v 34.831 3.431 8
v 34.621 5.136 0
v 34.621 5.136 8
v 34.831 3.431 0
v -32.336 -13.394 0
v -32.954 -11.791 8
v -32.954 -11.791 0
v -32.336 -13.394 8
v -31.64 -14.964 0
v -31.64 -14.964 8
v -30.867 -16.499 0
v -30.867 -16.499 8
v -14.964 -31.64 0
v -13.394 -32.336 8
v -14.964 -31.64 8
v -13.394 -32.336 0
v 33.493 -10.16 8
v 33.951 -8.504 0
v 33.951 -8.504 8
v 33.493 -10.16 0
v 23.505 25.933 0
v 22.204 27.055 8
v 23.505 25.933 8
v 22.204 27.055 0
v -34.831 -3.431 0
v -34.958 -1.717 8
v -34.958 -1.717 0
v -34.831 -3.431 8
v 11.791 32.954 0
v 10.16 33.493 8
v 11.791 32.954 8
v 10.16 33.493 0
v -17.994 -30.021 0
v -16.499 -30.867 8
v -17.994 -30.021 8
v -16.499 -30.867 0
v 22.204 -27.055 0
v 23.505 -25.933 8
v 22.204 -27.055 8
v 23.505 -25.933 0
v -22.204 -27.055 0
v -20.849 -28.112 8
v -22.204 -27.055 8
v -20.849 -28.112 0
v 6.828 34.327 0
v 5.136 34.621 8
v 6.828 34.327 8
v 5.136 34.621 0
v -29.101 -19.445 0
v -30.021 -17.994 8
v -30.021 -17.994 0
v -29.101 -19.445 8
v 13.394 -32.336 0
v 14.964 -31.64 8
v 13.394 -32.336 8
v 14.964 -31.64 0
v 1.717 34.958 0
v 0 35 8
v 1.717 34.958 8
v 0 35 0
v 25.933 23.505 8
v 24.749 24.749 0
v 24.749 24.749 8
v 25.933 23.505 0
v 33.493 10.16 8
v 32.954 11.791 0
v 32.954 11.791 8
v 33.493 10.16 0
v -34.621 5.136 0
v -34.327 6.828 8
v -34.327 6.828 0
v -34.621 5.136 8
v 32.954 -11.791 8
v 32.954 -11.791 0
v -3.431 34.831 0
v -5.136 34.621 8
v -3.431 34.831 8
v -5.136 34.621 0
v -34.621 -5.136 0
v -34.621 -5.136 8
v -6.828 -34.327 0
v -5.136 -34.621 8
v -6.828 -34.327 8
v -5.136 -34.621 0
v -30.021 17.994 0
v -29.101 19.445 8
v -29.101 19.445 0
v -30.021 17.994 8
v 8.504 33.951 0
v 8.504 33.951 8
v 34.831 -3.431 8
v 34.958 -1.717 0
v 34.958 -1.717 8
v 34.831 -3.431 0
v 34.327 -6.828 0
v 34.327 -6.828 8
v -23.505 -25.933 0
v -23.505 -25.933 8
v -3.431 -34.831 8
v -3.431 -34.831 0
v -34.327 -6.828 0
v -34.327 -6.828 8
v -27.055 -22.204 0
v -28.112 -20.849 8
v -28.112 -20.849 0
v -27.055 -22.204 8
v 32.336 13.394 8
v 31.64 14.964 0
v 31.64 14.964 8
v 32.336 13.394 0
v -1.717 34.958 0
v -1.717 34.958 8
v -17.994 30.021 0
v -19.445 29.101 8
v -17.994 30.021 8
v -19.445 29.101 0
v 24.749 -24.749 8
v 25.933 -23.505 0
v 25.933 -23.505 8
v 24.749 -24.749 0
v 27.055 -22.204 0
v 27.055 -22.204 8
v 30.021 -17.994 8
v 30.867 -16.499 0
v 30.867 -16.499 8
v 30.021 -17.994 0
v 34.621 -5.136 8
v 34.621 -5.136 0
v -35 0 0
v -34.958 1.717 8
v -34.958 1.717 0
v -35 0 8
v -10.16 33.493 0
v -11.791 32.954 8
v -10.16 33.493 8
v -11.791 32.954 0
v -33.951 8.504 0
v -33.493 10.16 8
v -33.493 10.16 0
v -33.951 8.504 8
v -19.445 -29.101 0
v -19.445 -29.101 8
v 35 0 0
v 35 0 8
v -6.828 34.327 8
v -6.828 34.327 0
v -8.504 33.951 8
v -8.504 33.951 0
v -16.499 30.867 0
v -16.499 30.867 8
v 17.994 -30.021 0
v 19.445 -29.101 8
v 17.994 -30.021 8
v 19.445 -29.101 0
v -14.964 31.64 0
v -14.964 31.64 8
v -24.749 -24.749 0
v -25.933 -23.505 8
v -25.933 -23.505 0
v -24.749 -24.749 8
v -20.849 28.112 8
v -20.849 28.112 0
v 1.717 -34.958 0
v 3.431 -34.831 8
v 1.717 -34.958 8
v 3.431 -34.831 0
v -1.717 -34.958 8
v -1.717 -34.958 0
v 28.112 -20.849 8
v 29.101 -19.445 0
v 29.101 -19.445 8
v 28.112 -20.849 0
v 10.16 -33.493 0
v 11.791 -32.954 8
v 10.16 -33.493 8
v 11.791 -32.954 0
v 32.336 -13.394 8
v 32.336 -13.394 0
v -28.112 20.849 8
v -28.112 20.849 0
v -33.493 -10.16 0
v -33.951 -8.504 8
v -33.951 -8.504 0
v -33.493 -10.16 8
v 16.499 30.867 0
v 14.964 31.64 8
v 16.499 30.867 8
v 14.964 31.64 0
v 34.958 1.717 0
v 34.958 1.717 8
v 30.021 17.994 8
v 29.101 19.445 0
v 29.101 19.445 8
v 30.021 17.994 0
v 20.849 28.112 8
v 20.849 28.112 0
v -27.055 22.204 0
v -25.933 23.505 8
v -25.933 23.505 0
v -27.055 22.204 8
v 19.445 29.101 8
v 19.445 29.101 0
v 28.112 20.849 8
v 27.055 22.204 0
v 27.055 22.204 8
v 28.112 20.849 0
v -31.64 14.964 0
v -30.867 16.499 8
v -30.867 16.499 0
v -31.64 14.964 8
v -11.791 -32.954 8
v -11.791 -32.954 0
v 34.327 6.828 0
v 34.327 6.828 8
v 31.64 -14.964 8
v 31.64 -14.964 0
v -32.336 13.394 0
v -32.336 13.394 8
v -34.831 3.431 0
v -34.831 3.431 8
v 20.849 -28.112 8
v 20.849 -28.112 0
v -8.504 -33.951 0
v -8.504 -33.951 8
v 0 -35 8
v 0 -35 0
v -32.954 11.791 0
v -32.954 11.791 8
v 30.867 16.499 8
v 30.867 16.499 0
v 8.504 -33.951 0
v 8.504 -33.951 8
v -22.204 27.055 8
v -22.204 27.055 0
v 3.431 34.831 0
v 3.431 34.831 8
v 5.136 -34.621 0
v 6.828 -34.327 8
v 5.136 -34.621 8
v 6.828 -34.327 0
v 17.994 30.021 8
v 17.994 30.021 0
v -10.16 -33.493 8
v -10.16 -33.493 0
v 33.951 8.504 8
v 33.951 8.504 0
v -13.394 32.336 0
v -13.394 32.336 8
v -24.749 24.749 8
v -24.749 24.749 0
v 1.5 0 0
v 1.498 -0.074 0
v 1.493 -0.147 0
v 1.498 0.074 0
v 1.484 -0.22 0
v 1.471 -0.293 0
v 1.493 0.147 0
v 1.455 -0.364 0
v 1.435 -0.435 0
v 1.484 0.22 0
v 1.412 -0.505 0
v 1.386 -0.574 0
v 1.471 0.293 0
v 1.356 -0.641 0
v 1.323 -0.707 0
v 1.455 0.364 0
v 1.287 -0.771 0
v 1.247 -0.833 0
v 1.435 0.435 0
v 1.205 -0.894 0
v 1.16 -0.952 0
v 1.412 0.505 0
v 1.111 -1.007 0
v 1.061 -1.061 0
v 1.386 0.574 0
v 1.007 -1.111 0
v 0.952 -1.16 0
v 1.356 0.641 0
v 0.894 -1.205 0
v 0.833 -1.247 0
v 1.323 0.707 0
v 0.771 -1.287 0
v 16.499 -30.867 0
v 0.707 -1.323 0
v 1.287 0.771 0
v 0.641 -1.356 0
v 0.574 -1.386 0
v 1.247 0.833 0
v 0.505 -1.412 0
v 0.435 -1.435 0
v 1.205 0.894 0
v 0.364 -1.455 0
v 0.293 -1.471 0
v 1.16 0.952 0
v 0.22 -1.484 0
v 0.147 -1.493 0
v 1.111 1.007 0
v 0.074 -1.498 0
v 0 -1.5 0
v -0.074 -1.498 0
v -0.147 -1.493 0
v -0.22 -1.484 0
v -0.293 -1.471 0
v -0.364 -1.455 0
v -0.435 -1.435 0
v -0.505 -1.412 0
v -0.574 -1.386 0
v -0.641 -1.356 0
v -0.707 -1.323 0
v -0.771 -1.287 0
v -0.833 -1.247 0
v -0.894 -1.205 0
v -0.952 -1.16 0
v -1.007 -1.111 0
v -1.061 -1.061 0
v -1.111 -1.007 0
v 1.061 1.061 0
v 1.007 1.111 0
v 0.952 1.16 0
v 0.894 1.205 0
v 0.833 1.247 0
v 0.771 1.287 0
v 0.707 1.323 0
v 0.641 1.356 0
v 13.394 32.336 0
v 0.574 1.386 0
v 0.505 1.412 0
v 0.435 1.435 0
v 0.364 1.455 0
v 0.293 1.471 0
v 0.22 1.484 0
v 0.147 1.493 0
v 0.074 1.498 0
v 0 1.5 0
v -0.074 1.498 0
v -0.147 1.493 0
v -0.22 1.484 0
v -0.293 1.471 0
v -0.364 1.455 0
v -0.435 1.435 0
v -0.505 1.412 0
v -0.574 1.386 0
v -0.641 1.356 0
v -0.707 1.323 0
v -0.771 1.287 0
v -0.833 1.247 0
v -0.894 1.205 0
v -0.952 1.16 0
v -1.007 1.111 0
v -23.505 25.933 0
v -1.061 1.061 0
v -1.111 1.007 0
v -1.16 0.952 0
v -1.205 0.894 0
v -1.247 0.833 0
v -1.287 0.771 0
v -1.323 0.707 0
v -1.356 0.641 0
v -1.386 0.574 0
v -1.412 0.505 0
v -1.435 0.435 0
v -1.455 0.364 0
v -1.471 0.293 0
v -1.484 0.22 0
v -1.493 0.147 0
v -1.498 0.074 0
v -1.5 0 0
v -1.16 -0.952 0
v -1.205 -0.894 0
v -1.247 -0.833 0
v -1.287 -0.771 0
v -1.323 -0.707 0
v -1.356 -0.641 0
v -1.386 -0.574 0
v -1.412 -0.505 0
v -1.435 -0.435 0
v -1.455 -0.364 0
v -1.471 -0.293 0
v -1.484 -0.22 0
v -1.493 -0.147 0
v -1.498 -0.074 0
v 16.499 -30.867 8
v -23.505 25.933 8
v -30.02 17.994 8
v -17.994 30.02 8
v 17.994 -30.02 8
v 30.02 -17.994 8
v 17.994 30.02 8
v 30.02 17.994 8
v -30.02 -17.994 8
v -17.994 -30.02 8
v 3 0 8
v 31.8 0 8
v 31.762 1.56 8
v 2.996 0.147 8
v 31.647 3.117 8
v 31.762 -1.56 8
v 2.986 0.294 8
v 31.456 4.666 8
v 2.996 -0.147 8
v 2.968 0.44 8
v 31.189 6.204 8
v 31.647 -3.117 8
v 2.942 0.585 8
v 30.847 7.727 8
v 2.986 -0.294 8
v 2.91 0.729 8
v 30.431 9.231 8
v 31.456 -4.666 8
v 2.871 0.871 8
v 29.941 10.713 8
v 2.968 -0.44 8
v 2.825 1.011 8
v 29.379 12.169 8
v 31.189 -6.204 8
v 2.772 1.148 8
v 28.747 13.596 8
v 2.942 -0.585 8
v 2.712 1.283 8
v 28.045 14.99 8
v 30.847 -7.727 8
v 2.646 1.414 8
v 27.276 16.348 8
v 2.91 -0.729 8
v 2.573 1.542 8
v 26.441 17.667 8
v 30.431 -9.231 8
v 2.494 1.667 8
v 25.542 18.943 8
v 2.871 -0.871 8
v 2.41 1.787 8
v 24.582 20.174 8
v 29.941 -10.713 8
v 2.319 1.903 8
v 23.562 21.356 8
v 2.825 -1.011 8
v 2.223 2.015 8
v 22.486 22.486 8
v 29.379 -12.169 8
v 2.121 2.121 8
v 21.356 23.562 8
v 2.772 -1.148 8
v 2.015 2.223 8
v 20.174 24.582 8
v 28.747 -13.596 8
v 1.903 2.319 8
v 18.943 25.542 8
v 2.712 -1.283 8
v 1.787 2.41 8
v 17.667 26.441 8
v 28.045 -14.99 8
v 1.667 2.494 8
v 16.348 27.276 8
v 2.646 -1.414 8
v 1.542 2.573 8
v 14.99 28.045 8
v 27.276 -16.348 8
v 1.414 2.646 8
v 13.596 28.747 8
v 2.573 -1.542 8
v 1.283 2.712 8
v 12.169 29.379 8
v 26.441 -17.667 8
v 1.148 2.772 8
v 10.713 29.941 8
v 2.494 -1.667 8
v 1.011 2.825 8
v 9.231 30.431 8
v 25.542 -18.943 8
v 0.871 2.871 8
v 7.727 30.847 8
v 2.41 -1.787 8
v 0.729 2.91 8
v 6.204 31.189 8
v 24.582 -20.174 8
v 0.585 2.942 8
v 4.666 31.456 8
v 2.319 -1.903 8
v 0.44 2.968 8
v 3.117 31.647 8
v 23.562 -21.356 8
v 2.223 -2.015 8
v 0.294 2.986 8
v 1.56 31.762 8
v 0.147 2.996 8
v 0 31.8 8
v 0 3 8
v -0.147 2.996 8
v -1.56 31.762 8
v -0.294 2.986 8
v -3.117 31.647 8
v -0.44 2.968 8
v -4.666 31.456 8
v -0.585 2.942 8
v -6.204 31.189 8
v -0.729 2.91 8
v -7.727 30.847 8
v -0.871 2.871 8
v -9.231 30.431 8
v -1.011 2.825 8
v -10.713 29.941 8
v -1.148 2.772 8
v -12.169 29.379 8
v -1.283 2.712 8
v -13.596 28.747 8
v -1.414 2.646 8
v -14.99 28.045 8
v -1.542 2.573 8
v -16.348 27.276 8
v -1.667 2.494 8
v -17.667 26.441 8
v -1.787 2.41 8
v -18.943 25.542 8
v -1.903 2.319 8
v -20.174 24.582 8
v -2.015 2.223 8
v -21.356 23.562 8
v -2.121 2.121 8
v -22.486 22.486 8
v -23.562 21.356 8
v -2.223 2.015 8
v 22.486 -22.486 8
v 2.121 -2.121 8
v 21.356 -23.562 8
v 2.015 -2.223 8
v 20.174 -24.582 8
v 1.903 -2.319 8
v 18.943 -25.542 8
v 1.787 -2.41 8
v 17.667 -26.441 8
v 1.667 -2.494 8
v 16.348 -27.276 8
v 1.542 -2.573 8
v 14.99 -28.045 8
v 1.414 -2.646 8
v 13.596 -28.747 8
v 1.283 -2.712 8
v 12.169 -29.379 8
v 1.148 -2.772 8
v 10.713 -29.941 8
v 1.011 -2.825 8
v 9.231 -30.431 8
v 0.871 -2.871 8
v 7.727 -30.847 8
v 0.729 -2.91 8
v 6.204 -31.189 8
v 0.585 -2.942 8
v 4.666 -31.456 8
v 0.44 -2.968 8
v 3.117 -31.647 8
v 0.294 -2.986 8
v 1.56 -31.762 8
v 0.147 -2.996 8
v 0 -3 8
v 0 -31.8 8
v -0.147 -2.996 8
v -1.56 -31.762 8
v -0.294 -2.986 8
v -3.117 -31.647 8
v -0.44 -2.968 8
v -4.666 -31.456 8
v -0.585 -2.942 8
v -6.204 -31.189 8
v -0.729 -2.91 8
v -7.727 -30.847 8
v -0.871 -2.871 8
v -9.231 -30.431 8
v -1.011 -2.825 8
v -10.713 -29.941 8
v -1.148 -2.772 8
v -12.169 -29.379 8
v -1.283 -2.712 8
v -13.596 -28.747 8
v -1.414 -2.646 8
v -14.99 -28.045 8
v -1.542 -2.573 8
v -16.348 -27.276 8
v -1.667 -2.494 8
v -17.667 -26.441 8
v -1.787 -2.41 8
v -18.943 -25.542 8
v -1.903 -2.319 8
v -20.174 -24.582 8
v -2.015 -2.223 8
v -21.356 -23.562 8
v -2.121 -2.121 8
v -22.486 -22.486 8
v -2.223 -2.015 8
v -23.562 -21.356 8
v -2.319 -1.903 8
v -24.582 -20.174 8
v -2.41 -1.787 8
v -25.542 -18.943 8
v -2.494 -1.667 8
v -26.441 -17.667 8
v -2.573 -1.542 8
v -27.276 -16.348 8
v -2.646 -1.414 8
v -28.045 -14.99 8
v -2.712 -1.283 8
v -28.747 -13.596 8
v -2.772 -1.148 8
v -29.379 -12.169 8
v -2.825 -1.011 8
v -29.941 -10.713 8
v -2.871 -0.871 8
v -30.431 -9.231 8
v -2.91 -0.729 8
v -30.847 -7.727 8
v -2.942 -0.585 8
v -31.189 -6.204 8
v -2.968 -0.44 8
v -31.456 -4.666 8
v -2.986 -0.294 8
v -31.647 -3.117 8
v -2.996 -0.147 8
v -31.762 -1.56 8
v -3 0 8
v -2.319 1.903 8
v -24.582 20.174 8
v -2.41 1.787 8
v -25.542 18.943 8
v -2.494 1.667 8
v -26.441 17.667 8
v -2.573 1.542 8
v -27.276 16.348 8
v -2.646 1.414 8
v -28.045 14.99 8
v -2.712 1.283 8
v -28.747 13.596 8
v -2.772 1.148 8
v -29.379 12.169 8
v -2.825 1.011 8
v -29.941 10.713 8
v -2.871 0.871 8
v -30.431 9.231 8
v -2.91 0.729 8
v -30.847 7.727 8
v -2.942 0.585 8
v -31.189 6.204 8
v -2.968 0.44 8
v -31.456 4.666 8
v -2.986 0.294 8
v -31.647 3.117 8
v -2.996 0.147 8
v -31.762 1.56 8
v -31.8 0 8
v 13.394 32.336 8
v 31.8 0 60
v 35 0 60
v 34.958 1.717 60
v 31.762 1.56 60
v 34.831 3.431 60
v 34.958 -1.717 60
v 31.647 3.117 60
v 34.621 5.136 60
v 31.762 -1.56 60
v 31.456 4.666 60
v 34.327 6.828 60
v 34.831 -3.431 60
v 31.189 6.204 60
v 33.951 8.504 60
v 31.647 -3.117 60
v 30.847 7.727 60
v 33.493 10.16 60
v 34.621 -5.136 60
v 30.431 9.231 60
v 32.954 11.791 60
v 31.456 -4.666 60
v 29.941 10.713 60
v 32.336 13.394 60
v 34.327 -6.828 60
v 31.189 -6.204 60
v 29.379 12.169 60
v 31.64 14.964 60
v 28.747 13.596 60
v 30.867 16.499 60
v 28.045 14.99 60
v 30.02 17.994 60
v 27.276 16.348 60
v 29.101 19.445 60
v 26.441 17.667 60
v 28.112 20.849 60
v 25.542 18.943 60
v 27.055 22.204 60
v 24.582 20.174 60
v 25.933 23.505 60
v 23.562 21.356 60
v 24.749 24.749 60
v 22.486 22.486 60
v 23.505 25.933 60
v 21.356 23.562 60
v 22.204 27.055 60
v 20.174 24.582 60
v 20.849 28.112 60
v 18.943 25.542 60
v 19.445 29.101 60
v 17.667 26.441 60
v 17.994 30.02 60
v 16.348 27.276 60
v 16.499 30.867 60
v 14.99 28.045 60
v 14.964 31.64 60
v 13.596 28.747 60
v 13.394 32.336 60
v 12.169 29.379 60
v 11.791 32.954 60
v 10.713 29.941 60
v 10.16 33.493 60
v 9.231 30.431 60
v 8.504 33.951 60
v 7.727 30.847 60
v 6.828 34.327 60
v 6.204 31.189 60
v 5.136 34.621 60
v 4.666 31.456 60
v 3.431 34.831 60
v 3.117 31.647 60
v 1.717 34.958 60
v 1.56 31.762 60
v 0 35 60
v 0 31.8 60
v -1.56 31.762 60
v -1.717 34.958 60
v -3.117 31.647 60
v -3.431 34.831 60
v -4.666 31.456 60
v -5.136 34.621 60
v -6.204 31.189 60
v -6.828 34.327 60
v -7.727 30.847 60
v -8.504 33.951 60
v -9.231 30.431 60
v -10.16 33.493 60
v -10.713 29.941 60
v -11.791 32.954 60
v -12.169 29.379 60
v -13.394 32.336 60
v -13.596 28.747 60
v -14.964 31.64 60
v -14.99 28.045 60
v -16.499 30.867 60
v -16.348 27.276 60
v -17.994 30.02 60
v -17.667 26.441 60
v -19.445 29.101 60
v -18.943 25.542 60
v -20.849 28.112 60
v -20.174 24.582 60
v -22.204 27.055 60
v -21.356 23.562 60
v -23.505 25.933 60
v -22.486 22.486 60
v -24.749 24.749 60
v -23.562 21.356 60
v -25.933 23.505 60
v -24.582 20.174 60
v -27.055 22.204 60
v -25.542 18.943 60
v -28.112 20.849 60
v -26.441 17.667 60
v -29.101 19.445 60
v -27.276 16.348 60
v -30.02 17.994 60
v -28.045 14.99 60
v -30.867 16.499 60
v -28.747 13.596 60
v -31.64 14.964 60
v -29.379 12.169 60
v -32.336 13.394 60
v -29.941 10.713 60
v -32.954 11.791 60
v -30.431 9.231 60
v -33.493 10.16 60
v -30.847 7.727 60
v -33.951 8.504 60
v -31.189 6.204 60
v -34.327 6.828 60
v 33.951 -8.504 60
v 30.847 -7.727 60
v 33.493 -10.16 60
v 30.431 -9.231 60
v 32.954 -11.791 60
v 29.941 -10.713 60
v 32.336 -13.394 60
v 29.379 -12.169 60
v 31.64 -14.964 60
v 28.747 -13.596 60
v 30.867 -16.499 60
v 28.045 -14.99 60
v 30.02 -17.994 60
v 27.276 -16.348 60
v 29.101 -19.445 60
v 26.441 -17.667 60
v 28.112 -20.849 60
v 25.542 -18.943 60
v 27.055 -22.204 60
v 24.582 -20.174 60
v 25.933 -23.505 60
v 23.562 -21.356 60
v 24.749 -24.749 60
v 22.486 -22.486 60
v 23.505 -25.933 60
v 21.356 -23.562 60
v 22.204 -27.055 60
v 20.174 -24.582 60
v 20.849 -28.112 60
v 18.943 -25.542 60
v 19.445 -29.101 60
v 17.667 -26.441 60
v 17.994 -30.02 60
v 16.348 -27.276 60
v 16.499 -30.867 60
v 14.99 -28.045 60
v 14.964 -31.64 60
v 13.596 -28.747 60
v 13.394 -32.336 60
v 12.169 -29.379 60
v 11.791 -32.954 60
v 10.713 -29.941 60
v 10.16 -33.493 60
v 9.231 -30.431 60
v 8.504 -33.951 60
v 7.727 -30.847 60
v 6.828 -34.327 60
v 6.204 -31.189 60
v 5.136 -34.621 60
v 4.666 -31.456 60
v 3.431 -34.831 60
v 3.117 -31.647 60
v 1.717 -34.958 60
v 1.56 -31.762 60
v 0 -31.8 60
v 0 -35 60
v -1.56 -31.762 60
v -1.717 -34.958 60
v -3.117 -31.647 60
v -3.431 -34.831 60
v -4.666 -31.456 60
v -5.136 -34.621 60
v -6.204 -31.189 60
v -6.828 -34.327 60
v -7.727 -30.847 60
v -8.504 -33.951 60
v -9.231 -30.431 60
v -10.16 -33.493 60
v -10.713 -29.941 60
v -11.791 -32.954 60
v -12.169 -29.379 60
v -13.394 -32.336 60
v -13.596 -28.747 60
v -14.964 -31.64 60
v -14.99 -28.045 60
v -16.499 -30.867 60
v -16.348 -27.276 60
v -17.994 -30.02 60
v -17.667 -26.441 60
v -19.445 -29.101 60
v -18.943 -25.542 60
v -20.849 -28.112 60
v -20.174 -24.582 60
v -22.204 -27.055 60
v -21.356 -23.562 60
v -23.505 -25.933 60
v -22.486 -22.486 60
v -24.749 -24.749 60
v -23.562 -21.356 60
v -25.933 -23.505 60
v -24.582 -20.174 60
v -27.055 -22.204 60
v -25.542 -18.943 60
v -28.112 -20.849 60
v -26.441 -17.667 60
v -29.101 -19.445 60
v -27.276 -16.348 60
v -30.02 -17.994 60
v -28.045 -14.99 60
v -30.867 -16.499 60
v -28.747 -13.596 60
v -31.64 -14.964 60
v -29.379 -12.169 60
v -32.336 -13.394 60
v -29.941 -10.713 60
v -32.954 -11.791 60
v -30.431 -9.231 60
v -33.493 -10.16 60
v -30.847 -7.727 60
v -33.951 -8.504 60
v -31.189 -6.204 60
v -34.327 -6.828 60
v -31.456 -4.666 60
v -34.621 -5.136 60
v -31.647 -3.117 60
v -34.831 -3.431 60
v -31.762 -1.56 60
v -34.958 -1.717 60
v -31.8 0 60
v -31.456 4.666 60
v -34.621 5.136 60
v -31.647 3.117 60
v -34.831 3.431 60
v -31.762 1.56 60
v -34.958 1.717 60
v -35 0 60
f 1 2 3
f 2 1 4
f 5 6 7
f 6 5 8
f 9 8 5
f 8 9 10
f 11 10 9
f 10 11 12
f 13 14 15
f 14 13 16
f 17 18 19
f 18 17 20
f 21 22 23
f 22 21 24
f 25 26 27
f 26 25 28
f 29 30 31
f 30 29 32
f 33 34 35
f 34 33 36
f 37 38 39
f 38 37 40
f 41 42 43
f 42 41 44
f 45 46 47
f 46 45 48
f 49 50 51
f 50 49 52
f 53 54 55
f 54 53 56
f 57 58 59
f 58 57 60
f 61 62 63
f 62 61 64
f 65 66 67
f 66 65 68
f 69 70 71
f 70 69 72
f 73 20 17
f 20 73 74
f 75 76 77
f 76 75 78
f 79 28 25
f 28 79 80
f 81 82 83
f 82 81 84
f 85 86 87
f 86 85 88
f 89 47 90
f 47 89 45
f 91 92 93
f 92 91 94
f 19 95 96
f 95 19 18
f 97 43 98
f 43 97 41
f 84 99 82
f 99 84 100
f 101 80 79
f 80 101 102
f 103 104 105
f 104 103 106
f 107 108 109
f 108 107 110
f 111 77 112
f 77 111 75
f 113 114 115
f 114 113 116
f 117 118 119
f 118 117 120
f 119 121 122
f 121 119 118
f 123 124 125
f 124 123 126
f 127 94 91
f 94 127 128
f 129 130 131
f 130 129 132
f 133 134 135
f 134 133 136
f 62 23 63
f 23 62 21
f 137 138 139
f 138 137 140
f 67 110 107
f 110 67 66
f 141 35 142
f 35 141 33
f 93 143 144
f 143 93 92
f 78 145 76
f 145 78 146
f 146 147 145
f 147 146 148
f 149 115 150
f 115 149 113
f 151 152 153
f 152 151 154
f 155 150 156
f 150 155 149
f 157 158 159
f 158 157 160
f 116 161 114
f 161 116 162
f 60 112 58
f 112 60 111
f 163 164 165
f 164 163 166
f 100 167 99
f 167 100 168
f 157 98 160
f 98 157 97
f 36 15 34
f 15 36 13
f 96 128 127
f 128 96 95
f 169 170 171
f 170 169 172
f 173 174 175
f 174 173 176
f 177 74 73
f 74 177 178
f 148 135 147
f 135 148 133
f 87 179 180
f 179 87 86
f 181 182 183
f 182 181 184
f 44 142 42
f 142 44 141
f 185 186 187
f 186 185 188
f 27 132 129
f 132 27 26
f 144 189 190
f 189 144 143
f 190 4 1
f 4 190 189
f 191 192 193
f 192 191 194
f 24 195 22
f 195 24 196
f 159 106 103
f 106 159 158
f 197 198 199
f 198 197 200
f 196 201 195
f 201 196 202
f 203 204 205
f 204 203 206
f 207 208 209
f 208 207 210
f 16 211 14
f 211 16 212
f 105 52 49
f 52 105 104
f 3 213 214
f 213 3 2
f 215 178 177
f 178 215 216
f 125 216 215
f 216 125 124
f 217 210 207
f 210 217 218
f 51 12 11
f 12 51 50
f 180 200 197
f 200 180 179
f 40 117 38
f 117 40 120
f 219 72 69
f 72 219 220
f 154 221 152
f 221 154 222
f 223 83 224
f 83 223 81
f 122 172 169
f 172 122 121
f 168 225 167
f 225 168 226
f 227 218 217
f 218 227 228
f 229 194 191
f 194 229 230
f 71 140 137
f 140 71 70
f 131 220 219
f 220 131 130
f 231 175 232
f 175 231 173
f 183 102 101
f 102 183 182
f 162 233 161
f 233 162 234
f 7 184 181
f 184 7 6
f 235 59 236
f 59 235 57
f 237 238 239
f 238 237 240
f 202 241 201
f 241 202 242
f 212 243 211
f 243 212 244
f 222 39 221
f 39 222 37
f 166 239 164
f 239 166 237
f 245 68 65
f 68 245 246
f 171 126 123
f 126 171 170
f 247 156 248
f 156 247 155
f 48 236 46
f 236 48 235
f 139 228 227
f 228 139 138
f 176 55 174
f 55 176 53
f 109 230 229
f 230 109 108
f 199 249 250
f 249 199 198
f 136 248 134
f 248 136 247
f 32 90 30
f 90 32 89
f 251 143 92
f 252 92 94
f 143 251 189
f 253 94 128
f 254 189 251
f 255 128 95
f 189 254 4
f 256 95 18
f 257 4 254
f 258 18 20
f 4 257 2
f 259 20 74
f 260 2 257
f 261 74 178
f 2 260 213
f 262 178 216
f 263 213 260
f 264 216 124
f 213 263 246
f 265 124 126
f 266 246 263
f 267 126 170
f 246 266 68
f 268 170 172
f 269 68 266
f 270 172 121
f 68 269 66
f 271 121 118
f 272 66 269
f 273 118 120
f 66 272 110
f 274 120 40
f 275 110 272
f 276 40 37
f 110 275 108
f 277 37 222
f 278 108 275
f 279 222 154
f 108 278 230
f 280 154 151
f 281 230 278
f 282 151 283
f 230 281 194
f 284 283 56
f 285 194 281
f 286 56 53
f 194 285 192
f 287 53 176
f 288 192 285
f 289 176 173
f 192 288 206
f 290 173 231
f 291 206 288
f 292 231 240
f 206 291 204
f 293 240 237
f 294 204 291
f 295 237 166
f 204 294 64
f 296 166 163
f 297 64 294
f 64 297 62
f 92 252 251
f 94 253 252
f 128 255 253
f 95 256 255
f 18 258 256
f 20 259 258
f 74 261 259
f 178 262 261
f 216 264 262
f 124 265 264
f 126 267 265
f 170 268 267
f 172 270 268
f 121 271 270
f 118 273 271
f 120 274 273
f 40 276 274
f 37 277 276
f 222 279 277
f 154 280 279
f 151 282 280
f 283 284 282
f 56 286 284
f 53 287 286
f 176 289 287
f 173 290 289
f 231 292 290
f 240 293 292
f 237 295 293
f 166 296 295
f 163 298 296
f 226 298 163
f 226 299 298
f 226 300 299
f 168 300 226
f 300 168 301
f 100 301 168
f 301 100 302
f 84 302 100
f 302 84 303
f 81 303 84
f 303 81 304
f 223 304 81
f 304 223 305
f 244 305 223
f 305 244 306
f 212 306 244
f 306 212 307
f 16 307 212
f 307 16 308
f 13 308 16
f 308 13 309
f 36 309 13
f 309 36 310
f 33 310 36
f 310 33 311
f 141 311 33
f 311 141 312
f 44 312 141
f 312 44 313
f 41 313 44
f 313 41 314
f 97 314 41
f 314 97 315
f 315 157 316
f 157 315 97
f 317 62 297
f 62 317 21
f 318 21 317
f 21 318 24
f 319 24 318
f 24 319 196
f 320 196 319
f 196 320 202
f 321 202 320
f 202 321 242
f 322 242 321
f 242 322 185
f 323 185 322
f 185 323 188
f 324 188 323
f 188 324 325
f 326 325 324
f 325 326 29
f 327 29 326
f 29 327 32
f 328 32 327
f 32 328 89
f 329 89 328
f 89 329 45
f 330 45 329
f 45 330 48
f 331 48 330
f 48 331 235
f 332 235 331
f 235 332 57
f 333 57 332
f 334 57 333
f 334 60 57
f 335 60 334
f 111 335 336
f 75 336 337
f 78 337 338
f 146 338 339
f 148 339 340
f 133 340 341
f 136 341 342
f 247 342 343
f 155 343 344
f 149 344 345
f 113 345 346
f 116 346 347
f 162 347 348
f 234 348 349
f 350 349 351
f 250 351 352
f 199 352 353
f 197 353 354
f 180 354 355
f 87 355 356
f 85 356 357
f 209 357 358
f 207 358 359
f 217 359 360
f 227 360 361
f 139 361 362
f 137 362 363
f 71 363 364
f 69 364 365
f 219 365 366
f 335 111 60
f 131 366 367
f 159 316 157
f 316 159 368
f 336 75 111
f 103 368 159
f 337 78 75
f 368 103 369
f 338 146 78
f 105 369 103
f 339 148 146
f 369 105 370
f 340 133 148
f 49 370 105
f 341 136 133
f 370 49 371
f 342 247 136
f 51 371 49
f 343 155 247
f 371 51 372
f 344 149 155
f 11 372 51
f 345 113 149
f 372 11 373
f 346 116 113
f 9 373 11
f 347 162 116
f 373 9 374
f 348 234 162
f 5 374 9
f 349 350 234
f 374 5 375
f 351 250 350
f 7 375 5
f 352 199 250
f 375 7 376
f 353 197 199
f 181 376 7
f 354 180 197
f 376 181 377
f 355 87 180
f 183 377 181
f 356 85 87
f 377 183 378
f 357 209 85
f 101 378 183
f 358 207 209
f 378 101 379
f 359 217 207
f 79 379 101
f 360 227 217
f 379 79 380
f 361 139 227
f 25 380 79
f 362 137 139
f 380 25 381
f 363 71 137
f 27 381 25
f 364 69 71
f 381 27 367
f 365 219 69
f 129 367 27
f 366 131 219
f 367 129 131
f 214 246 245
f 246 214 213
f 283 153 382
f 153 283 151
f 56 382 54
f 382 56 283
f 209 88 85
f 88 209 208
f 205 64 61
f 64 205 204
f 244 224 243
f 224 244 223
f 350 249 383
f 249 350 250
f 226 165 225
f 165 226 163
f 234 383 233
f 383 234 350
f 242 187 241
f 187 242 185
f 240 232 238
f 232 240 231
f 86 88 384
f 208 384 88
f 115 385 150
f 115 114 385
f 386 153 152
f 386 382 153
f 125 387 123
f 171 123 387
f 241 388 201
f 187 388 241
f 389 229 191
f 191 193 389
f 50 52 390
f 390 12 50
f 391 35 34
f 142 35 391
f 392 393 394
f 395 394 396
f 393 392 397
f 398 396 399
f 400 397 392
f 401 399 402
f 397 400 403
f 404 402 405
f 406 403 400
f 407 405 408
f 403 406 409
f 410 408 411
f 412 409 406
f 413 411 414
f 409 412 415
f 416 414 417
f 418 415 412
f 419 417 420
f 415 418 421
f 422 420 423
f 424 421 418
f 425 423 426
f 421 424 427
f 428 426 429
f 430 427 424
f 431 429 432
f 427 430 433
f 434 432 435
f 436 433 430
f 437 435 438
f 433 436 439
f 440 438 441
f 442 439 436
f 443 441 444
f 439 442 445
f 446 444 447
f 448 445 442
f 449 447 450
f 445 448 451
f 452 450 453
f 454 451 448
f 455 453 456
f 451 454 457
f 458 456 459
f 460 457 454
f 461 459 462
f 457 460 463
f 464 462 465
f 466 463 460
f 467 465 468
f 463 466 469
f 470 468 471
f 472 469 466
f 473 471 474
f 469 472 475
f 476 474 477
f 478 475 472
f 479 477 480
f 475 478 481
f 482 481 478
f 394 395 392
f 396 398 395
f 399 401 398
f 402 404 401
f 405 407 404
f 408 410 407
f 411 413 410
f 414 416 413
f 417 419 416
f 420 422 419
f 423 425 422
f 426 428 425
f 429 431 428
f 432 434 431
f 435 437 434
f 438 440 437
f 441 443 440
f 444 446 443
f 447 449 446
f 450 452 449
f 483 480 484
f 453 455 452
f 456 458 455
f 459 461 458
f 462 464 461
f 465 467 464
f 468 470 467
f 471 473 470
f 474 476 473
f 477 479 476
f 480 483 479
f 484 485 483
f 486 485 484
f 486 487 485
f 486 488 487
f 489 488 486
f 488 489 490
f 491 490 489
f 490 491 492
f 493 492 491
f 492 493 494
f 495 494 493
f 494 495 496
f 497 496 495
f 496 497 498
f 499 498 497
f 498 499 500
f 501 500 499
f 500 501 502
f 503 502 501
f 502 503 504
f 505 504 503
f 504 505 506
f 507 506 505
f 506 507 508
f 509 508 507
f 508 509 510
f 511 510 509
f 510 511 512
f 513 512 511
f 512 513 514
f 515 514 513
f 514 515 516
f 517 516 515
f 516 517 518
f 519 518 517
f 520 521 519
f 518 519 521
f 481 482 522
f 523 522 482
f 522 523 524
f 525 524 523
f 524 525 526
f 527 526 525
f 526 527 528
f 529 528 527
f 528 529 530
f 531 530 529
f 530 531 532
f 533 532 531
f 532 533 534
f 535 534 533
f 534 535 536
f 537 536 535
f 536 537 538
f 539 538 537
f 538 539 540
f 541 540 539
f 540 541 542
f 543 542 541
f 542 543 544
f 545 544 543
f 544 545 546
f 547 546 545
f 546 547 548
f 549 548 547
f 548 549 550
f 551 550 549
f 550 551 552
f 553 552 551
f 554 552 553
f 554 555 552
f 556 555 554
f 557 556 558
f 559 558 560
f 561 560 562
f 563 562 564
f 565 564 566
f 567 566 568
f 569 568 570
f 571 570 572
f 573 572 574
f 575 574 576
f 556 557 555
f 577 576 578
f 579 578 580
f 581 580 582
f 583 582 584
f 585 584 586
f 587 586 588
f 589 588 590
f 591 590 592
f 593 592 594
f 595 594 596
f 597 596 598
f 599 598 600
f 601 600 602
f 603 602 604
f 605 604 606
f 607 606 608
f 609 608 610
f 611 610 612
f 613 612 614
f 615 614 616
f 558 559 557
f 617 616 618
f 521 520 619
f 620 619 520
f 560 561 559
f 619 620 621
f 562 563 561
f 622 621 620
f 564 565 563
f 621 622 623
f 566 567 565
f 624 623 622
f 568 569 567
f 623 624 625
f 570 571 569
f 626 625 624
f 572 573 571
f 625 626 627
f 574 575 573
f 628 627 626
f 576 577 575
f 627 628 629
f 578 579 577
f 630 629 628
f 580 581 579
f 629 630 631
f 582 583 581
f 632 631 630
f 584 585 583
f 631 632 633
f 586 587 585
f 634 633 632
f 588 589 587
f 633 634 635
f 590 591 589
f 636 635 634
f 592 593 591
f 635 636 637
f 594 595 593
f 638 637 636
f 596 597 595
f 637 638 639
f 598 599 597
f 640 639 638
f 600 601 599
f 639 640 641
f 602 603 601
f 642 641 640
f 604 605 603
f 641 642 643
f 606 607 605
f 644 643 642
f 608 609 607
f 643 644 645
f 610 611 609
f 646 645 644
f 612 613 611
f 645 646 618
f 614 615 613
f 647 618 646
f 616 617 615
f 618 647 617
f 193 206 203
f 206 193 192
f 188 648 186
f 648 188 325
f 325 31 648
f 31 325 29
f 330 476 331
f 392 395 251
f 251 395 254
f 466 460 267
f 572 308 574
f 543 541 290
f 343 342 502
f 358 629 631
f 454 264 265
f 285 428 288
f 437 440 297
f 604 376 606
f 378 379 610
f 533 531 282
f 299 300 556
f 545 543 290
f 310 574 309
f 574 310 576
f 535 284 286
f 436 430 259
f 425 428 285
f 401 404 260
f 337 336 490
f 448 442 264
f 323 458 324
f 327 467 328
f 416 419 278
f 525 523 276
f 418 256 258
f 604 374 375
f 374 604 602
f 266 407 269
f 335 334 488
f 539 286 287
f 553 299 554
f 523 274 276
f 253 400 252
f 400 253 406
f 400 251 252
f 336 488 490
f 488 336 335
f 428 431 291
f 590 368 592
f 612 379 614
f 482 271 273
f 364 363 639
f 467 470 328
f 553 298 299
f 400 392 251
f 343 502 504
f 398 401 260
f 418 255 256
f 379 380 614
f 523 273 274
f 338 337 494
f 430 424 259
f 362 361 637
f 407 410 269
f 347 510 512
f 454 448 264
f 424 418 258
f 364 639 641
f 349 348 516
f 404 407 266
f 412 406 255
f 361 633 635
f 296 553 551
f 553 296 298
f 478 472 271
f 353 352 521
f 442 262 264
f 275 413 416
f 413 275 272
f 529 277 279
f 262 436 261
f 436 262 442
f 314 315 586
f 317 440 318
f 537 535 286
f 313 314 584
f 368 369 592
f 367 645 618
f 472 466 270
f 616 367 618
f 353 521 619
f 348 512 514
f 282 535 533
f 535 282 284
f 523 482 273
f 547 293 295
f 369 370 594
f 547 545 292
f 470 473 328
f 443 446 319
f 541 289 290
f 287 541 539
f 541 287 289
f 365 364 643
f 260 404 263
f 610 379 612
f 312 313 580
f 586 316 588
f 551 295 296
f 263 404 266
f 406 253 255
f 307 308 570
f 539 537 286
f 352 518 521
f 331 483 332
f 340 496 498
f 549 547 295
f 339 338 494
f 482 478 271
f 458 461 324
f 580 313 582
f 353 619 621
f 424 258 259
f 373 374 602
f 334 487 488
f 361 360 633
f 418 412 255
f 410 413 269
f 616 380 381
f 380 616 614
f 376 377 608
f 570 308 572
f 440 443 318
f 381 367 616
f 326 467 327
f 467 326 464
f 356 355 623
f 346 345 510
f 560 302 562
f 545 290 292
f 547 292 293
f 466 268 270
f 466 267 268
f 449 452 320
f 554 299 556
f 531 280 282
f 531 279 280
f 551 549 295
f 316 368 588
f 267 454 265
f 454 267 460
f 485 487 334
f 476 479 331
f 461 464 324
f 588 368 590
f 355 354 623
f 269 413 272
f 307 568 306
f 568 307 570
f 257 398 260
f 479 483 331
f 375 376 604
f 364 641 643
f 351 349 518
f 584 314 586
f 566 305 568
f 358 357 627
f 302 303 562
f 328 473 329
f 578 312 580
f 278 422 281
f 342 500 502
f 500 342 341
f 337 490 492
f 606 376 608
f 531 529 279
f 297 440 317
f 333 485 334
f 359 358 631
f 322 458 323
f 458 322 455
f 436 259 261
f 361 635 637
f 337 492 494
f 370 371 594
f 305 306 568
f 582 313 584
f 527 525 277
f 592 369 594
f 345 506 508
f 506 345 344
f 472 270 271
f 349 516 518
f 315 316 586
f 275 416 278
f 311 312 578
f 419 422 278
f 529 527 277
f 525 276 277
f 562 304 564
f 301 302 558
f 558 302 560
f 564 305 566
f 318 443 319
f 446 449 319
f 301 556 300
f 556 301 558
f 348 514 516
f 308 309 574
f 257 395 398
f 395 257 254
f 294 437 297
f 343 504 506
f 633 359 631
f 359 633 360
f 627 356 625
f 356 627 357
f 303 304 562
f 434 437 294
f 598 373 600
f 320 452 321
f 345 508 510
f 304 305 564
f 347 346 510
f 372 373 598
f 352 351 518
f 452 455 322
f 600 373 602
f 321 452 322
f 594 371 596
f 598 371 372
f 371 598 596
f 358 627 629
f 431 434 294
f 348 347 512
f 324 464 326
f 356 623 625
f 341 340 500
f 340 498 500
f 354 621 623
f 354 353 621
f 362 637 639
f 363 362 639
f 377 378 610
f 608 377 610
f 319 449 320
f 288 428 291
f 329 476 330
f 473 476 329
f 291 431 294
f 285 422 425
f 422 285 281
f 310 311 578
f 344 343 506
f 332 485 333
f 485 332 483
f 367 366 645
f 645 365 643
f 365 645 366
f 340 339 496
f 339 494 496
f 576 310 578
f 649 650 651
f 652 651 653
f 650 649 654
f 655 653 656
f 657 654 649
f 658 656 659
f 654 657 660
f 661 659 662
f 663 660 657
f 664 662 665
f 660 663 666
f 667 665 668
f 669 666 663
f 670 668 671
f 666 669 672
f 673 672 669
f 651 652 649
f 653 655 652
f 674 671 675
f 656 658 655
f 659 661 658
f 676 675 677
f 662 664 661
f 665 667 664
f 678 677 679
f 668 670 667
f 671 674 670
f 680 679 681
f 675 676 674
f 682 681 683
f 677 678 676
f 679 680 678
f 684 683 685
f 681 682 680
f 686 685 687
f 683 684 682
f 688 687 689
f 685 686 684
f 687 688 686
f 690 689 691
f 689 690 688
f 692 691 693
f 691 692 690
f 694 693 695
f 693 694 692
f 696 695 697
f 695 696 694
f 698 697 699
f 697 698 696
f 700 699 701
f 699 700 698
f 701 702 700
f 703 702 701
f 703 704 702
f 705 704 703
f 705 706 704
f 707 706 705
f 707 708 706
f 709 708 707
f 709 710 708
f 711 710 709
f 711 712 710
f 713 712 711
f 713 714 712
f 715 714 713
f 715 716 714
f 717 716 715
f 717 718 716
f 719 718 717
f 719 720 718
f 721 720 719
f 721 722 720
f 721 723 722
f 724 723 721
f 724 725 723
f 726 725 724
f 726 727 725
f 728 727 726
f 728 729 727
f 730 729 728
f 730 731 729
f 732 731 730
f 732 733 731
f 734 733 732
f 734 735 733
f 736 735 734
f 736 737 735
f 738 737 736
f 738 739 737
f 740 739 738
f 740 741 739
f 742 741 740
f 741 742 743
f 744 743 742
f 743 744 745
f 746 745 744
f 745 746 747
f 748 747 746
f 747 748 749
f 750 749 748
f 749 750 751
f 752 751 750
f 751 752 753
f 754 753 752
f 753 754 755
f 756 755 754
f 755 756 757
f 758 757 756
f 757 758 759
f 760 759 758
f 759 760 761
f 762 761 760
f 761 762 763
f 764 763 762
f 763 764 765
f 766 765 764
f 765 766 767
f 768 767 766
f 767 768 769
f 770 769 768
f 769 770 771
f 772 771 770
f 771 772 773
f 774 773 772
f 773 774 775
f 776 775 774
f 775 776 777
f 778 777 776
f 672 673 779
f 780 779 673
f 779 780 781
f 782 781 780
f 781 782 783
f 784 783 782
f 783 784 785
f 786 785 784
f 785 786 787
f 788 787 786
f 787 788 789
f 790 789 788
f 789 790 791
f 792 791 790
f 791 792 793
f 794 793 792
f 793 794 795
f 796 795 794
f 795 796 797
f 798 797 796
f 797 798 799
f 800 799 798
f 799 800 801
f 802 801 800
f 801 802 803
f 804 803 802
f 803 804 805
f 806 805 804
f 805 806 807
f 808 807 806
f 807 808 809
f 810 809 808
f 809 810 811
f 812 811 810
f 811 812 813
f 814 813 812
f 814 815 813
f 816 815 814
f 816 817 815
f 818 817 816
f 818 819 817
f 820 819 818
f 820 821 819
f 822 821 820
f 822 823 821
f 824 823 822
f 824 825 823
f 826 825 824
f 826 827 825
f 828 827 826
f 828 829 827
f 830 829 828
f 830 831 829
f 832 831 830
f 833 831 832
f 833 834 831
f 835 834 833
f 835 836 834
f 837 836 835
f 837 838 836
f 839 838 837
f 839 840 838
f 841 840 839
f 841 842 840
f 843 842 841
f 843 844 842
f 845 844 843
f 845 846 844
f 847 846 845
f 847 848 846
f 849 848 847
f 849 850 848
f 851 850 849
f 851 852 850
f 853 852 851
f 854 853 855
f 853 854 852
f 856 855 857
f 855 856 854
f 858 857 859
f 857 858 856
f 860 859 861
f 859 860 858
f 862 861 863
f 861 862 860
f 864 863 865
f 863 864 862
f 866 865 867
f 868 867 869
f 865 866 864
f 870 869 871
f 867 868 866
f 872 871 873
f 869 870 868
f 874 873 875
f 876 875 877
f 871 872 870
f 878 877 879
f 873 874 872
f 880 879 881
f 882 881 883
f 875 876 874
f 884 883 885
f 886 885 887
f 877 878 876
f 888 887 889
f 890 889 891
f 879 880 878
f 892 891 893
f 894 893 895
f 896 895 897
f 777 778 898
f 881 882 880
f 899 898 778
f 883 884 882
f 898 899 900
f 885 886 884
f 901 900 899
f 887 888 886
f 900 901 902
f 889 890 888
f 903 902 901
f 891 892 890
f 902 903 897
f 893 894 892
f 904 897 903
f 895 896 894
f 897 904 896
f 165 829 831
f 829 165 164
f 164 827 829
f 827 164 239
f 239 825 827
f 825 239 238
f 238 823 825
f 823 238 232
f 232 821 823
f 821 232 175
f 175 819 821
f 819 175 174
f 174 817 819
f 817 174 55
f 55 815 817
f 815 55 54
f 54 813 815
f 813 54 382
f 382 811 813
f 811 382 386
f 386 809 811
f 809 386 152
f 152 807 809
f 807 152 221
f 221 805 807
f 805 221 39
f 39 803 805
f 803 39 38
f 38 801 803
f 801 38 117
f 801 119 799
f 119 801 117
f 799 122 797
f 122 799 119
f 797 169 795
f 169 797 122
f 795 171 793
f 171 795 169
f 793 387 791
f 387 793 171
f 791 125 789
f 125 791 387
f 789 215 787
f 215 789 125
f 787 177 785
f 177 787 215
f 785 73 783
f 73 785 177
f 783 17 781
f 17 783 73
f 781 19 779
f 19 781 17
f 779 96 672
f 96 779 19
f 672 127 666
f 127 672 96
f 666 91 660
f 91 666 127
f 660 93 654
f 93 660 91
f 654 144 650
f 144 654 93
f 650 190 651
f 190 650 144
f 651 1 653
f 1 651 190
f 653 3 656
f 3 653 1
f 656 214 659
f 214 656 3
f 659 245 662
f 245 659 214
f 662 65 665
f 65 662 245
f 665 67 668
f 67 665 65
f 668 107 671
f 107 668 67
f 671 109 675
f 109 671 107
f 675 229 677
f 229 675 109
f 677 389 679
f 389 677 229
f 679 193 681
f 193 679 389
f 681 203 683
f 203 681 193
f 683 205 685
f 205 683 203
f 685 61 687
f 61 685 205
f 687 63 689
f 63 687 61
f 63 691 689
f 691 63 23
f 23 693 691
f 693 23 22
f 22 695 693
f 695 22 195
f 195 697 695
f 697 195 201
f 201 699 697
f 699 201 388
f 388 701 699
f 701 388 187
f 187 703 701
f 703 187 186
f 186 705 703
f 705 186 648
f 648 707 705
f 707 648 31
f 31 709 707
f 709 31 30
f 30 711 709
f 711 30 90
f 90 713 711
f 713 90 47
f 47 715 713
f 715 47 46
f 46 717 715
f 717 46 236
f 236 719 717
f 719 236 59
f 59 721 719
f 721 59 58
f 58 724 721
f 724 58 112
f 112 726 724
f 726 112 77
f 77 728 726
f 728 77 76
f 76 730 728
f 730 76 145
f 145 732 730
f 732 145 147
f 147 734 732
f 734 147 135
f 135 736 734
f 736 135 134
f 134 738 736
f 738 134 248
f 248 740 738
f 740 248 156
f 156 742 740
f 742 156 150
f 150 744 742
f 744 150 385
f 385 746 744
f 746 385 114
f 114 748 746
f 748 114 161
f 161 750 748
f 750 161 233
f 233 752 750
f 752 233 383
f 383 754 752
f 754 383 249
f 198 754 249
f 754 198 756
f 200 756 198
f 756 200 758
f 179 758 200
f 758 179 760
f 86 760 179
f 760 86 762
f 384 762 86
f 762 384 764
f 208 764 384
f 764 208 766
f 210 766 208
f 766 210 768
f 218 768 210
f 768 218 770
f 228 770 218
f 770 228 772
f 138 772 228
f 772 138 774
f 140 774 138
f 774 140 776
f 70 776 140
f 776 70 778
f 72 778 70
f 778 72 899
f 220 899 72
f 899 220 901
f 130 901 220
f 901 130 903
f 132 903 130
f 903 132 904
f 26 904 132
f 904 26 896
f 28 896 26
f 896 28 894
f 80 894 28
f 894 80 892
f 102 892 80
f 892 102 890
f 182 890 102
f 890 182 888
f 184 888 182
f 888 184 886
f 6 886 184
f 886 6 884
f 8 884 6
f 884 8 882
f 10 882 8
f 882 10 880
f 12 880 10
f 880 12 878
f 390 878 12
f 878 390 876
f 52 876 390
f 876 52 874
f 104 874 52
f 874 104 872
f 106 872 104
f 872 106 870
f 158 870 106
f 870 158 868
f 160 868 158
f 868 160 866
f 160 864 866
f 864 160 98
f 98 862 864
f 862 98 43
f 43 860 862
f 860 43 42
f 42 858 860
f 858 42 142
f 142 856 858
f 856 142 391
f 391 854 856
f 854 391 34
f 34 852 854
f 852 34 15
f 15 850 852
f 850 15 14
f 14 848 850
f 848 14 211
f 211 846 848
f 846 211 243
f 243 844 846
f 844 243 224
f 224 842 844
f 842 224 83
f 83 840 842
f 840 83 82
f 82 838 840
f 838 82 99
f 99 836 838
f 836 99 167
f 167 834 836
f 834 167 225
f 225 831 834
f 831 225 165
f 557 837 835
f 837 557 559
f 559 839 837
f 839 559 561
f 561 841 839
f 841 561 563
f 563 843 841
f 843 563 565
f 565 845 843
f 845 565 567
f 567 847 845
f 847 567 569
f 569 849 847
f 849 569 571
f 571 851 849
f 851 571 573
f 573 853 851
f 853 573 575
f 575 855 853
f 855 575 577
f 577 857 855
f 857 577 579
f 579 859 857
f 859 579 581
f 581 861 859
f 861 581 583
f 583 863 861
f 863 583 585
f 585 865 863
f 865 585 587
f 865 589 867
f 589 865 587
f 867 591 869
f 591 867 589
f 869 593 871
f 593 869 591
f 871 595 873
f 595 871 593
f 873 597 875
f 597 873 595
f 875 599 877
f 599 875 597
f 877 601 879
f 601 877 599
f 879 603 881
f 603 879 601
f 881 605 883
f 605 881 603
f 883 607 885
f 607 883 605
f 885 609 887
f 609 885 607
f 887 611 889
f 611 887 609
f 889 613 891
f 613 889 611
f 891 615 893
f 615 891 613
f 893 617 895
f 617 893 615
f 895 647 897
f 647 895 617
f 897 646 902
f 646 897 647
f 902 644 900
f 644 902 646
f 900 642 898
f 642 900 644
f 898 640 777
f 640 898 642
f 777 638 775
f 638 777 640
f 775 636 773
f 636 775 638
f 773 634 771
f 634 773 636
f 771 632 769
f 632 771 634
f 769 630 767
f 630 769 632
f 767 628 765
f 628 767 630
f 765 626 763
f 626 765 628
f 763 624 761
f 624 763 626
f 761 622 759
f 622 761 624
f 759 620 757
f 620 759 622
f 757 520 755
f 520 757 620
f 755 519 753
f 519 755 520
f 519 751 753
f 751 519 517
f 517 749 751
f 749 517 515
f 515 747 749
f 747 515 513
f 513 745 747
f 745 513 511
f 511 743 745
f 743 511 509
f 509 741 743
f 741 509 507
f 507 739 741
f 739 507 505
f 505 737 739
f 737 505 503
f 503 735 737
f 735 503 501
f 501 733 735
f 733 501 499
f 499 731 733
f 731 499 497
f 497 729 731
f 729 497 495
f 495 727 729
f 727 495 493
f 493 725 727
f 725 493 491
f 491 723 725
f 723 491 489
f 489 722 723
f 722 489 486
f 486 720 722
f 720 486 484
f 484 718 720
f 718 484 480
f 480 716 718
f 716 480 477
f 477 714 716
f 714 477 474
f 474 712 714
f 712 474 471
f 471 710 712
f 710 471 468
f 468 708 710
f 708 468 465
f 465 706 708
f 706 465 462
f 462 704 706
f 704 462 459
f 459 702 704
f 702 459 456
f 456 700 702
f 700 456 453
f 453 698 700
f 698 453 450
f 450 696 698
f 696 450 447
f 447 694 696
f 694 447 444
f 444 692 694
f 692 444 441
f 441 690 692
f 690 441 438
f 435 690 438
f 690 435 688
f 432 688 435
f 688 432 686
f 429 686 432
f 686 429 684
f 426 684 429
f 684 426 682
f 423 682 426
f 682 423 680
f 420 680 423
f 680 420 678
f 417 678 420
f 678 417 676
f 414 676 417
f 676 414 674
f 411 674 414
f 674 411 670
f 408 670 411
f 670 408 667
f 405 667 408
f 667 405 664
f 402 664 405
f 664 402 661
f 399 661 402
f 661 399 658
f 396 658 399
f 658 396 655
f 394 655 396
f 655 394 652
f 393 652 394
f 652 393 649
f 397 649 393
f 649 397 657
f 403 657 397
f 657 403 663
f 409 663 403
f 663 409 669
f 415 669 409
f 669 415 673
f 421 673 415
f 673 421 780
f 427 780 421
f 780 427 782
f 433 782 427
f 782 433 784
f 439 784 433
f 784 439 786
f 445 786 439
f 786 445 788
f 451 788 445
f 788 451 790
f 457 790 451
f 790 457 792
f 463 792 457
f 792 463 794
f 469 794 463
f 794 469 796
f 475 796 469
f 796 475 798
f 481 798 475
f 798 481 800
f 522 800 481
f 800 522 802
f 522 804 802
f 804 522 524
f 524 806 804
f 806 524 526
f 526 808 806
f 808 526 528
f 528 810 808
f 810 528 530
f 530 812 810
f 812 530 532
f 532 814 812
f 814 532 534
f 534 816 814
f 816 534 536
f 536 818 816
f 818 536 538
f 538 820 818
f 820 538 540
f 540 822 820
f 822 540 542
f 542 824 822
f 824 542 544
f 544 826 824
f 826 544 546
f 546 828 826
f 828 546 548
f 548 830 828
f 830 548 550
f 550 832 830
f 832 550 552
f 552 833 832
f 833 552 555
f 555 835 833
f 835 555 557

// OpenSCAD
$fn = 128;

nozzle = 0.4;

mount_r = 70.0 / 2;
mount_wall = nozzle * 8;
mount_h = 60.0;

base_h = 8.00;

module tube_mount_wall() {
    linear_extrude(mount_h)
    difference() {
        circle(mount_r);
        circle(mount_r - mount_wall);
    }
}

module tube_base() {
    difference() {
        linear_extrude(base_h) 
            circle(mount_r);
        cylinder(base_h, 1.5, 3.0);
    }
}

tube_mount_wall();
tube_base();
